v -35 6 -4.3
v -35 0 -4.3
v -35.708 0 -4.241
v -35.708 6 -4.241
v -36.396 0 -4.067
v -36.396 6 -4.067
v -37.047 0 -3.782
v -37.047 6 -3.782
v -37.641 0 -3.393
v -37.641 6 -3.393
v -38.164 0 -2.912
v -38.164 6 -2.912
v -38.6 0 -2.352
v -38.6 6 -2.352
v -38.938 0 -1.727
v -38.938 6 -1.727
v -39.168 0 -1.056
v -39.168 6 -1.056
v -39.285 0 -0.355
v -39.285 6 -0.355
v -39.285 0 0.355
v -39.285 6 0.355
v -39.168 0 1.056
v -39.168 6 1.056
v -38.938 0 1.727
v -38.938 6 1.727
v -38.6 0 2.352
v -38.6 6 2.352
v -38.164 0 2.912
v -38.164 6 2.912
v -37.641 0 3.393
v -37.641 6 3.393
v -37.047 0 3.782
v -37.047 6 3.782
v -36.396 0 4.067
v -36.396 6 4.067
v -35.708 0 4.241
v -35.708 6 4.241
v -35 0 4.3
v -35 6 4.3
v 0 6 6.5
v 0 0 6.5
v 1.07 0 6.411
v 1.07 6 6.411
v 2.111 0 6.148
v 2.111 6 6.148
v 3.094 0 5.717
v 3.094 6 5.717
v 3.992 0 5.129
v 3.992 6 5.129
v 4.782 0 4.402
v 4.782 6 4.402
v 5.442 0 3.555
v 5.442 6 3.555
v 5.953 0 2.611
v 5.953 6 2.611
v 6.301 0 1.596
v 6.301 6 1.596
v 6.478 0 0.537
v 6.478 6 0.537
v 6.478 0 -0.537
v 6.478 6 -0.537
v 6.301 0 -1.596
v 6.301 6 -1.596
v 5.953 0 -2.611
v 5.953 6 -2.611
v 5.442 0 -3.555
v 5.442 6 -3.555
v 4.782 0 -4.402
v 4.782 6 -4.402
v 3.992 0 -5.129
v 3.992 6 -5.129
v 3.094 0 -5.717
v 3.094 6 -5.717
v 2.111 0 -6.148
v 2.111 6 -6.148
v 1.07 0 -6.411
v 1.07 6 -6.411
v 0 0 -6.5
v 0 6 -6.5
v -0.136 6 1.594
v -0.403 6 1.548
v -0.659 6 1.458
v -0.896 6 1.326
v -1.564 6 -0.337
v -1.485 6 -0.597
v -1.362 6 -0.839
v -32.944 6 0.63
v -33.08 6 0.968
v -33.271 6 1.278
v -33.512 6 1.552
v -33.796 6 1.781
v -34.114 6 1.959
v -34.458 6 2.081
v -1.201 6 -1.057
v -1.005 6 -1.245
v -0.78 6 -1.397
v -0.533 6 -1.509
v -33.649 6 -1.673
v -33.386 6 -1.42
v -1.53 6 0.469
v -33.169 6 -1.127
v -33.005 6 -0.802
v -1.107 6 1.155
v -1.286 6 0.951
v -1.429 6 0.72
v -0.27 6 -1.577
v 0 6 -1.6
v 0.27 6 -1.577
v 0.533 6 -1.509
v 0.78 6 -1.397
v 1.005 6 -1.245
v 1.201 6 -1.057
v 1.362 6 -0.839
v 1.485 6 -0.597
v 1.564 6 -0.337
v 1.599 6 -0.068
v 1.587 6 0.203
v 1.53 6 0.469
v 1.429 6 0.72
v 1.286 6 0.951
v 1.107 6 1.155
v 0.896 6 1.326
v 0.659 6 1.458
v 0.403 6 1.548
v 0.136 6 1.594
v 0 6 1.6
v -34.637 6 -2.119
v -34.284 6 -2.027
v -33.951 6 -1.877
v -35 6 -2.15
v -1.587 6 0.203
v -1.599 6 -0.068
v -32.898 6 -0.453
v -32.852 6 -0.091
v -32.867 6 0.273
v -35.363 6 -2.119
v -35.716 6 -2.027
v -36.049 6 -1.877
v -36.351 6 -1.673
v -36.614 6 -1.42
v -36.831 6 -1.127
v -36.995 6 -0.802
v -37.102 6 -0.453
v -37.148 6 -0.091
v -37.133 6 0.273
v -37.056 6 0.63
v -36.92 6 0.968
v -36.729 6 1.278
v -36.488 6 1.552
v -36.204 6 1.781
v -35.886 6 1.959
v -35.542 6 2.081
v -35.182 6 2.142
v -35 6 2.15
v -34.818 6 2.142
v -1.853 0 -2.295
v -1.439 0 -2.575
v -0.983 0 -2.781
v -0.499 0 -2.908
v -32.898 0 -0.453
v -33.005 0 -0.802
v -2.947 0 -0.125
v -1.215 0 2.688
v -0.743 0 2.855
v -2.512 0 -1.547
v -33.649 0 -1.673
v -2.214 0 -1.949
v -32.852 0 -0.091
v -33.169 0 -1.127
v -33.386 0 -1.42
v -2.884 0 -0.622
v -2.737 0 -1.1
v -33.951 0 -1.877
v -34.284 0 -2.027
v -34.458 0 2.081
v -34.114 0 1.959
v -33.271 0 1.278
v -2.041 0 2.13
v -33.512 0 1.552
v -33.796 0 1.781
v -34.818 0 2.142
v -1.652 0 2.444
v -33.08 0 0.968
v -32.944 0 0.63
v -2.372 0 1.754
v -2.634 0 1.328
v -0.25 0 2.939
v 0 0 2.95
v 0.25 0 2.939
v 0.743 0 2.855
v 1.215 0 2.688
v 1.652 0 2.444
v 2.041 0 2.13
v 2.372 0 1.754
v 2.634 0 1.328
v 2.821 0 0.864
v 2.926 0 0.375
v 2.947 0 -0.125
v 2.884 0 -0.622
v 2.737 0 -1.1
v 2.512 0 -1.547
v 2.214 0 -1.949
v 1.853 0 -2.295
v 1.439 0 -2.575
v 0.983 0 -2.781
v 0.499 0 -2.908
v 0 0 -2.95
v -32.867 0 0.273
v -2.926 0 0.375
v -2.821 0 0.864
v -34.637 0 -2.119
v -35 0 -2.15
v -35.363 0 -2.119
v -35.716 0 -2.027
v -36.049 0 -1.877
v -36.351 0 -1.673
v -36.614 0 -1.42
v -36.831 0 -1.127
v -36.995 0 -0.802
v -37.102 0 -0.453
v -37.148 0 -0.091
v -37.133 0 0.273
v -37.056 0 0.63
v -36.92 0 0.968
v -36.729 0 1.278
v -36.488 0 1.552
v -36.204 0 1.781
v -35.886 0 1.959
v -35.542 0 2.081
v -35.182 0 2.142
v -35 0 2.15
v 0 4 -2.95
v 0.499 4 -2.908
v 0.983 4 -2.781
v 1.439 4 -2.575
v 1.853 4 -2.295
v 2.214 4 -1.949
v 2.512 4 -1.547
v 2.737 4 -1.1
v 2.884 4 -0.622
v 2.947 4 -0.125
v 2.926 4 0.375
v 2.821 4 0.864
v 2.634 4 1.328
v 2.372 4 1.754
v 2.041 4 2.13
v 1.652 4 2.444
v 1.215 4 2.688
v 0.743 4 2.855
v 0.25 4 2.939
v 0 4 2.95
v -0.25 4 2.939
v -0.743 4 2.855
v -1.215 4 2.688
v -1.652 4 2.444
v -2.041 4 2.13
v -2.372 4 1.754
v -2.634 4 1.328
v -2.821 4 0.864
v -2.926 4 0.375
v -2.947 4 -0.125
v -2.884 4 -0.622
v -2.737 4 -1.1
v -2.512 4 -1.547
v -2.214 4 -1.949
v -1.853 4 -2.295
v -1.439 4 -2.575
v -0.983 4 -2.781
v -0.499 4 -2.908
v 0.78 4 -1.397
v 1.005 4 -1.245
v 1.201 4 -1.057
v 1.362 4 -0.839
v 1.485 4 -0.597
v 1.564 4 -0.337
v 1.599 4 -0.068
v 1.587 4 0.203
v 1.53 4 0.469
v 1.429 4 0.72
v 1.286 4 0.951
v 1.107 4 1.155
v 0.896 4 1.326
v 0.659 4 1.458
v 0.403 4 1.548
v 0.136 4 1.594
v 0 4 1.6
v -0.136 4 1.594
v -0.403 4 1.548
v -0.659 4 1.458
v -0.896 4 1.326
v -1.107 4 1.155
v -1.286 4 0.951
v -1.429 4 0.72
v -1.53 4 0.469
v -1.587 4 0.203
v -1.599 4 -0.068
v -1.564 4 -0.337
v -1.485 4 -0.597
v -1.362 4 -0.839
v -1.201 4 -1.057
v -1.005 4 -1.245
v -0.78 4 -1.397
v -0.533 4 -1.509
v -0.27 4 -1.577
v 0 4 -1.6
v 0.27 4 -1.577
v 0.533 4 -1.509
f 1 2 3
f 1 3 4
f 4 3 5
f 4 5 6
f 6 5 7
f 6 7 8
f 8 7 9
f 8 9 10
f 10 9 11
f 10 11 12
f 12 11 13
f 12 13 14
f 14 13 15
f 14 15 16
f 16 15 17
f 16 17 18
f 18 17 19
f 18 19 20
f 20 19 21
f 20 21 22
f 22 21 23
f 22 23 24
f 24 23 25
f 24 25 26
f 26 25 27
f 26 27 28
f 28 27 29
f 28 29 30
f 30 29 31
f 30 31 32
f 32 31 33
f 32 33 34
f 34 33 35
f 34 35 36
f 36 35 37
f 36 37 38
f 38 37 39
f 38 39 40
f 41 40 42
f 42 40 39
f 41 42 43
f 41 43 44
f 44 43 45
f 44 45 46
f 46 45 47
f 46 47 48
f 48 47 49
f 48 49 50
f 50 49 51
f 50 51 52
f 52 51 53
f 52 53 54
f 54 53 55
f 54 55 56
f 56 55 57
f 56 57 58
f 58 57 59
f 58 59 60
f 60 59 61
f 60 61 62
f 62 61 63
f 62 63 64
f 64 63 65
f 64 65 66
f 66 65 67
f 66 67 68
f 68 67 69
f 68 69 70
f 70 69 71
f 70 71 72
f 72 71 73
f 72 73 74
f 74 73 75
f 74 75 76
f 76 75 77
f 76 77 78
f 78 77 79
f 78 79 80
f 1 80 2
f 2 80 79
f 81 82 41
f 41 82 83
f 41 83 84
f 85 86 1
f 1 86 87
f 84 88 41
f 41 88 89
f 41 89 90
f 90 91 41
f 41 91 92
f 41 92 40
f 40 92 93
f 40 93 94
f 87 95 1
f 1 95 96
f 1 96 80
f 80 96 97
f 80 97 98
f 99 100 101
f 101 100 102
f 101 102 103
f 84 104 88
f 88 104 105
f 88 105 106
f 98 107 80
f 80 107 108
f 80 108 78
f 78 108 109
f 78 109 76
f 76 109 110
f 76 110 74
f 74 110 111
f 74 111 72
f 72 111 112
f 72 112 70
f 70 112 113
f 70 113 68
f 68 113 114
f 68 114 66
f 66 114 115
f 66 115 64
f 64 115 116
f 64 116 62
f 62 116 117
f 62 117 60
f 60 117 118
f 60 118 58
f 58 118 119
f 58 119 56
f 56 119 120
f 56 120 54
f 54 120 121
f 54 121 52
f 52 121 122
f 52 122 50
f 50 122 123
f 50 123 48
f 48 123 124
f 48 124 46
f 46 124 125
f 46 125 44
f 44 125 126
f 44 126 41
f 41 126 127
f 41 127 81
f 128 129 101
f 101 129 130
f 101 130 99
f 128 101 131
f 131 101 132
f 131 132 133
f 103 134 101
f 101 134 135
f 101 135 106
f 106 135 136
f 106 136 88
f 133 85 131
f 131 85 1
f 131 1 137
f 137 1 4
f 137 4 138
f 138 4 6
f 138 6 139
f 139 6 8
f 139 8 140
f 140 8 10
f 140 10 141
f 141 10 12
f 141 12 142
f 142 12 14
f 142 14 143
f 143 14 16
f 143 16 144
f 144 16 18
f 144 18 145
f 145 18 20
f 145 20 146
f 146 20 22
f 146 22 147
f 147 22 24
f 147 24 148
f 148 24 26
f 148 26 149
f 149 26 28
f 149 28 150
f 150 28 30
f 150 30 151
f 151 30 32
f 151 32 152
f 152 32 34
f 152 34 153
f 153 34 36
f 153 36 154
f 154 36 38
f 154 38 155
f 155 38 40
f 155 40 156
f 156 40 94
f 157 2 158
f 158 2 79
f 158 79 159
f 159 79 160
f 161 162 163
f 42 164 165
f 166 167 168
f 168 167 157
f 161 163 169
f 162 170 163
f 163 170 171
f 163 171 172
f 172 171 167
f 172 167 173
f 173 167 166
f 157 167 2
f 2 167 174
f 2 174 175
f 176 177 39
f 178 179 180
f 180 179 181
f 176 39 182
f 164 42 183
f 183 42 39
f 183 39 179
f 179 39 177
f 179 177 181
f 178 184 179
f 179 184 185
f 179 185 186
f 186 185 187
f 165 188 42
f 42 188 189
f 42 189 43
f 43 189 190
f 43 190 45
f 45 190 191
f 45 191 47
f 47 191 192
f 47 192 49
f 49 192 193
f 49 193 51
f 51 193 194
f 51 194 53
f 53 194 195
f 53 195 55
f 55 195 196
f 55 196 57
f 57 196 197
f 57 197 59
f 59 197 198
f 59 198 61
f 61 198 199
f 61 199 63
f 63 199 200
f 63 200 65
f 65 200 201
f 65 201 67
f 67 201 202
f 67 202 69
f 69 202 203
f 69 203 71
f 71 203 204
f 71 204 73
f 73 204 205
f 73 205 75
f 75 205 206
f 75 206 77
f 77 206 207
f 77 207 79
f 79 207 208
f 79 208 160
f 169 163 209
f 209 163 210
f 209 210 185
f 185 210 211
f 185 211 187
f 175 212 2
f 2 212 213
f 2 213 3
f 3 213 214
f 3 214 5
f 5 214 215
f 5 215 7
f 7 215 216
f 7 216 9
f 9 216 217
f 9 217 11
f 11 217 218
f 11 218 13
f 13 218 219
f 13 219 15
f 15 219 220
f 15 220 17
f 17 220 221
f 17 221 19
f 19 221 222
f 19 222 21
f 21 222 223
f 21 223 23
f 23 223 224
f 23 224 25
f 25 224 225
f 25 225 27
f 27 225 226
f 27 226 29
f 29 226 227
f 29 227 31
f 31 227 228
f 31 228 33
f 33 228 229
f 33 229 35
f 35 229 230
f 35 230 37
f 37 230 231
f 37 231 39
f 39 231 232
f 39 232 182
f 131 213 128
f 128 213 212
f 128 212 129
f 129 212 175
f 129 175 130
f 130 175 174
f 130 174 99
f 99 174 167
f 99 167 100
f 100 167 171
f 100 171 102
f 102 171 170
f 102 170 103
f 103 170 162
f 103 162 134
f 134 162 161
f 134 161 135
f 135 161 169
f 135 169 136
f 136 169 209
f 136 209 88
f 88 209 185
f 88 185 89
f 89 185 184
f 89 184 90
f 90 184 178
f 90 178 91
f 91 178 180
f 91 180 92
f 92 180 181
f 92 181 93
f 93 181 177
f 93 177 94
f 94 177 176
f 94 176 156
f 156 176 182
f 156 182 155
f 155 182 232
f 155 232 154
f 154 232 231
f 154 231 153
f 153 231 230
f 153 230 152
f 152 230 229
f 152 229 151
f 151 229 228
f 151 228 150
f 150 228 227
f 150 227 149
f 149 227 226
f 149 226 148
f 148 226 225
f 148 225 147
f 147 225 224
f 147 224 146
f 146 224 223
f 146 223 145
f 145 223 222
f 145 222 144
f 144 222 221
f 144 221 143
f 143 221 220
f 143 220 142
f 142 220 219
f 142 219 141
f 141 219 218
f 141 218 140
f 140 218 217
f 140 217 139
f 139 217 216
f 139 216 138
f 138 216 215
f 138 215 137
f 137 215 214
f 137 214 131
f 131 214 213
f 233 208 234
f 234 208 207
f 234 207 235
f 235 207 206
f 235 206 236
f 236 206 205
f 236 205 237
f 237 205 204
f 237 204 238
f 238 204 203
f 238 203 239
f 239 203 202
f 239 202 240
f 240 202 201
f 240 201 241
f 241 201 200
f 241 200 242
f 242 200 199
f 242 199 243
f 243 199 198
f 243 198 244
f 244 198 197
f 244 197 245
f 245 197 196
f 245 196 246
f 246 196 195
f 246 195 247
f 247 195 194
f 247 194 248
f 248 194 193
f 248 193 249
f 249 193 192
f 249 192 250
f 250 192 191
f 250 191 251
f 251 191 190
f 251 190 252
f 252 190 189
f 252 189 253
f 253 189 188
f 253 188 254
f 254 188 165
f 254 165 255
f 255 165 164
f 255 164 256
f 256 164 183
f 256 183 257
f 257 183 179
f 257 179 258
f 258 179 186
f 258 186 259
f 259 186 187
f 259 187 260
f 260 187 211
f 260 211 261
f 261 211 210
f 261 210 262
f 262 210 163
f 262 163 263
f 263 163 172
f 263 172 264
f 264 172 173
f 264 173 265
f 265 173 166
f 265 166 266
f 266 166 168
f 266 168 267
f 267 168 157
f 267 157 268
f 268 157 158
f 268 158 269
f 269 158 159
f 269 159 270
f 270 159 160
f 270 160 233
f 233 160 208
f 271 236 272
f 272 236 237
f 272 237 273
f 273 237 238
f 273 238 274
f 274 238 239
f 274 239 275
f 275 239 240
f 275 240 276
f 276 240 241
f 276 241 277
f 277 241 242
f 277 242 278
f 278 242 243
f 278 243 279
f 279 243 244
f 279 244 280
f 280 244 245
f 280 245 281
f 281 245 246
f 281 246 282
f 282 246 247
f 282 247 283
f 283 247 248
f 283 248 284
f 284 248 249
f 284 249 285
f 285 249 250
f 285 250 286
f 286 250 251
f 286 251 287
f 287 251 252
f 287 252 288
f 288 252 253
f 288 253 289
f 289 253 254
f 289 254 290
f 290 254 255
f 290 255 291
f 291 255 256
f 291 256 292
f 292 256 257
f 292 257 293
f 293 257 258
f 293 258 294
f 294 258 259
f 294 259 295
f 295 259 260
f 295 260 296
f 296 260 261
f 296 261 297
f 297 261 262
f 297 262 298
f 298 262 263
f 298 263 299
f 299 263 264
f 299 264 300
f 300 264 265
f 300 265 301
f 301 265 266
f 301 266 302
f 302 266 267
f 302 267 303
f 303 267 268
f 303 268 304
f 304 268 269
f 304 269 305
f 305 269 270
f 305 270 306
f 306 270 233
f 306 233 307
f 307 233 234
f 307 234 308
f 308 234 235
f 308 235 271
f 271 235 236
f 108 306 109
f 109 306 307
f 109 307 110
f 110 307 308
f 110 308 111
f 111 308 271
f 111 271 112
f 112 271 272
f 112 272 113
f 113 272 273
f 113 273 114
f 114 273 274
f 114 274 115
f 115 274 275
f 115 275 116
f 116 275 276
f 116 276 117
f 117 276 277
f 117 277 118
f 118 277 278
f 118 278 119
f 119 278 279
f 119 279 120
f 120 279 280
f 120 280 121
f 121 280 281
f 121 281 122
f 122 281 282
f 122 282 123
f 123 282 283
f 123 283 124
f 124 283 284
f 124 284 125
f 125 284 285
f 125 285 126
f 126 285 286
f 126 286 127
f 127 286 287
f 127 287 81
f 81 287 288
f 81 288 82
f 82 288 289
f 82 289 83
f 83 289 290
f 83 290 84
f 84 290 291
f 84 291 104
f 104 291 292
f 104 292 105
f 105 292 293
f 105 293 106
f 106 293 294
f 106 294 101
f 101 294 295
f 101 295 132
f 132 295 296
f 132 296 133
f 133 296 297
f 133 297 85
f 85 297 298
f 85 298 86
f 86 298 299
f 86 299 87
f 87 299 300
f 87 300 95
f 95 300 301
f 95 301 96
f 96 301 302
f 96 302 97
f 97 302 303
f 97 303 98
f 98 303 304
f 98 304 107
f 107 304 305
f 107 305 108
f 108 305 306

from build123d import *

# Parameters (mm, degrees)
BOSS_EXTRUDE1_DEPTH = 6
SKETCH2_R           = 2.15
CUT_EXTRUDE1_DEPTH  = 6
SKETCH3_R           = 2.95
CUT_EXTRUDE2_DEPTH  = 4
SKETCH4_R           = 1.6
CUT_EXTRUDE3_DEPTH  = 11


with BuildPart() as part:
    # Sketch1 → Boss-Extrude1 (new body)
    with BuildSketch(Plane(origin=(0, 0, 0), x_dir=(1, 0, 0), z_dir=(0, 1, 0))):
        with BuildLine():
            Line((-35, 4.3), (0, 6.5))
            ThreePointArc((0, 6.5), (6.5, 0), (0, -6.5))
            Line((0, -6.5), (-35, -4.3))
            ThreePointArc((-35, -4.3), (-39.3, 0), (-35, 4.3))
        make_face()
    extrude(amount=BOSS_EXTRUDE1_DEPTH)

    # Sketch2 → Cut-Extrude1 (cut)
    with BuildSketch(Plane(origin=(0, 0, 0), x_dir=(1, 0, 0), z_dir=(0, 1, 0))):
        with Locations(Location((-35, 0, 0), (0, 0, 270))):
            Circle(SKETCH2_R)
    extrude(amount=CUT_EXTRUDE1_DEPTH, mode=Mode.SUBTRACT)

    # Sketch3 → Cut-Extrude2 (cut)
    with BuildSketch(Plane(origin=(0, 0, 0), x_dir=(1, 0, 0), z_dir=(0, 1, 0))):
        with Locations(Location((0, 0, 0), (0, 0, 270))):
            Circle(SKETCH3_R)
    extrude(amount=CUT_EXTRUDE2_DEPTH, mode=Mode.SUBTRACT)

    # Sketch4 → Cut-Extrude3 (cut)
    with BuildSketch(Plane(origin=(0, 0, 0), x_dir=(1, 0, 0), z_dir=(0, 1, 0))):
        with Locations(Location((0, 0, 0), (0, 0, 270))):
            Circle(SKETCH4_R)
    extrude(amount=CUT_EXTRUDE3_DEPTH, mode=Mode.SUBTRACT)


solid = part.part
